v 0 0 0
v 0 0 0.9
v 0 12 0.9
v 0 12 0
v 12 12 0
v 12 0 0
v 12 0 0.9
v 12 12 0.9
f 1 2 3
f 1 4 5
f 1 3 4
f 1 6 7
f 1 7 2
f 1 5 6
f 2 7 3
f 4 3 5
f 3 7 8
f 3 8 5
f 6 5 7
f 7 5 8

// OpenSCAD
/* Warning, this is a very basic generator with a lot of approximation 
input data : [VQFN, ZVX, 12x12x0.9mm, 100, , A, C04-00529A]
generated by com.zoubworld.electronics.cad.model3d.Basic
Date : Sun Feb 15 10:50:48 CET 2026
*/

//body
color("black")
translate([0,0,0])
cube([12.0,12.0,0.9], center=false);
